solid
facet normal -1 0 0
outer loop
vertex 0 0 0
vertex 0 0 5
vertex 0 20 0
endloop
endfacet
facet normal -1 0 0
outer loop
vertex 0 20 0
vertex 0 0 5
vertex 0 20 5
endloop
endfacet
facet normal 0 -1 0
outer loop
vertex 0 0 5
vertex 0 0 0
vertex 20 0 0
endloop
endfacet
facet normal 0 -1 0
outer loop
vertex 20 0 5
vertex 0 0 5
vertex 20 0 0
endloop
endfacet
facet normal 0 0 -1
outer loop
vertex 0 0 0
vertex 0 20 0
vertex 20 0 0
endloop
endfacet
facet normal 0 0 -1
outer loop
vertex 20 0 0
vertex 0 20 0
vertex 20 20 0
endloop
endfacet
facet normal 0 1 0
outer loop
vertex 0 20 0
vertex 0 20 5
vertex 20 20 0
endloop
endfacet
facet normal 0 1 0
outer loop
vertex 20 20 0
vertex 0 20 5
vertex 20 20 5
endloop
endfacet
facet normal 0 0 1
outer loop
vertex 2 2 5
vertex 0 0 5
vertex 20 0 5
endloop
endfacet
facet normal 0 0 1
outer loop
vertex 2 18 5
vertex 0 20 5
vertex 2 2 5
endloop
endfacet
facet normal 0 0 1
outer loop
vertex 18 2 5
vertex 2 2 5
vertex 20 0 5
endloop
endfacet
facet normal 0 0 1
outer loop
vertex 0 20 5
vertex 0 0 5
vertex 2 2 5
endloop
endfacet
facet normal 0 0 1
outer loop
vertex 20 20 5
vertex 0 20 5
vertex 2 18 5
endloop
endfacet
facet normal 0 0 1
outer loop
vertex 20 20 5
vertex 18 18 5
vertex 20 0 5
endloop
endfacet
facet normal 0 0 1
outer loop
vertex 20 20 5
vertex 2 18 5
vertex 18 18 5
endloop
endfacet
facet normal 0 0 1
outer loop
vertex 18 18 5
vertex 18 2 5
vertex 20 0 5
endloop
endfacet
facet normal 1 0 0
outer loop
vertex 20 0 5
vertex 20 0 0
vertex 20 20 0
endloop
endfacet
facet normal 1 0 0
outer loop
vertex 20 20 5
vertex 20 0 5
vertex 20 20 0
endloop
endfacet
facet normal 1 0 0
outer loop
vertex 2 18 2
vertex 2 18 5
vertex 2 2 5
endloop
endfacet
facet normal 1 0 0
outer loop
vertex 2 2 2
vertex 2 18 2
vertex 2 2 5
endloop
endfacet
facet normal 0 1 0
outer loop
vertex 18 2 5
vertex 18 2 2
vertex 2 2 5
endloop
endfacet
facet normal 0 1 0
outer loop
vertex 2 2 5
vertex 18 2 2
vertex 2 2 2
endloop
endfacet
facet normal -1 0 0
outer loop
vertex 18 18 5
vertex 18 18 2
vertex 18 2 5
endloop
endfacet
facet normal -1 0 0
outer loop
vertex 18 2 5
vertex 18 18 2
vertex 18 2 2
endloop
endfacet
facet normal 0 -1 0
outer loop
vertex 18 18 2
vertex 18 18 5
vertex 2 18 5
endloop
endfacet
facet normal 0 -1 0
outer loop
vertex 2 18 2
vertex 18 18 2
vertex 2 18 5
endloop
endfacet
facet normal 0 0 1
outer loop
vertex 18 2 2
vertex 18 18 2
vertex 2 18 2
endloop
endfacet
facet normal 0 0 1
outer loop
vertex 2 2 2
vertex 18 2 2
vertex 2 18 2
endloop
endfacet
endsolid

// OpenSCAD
difference() {
cube ([20,20,5]);
translate ([2,2,2]) {
cube ([16,16,6]);
}
};
